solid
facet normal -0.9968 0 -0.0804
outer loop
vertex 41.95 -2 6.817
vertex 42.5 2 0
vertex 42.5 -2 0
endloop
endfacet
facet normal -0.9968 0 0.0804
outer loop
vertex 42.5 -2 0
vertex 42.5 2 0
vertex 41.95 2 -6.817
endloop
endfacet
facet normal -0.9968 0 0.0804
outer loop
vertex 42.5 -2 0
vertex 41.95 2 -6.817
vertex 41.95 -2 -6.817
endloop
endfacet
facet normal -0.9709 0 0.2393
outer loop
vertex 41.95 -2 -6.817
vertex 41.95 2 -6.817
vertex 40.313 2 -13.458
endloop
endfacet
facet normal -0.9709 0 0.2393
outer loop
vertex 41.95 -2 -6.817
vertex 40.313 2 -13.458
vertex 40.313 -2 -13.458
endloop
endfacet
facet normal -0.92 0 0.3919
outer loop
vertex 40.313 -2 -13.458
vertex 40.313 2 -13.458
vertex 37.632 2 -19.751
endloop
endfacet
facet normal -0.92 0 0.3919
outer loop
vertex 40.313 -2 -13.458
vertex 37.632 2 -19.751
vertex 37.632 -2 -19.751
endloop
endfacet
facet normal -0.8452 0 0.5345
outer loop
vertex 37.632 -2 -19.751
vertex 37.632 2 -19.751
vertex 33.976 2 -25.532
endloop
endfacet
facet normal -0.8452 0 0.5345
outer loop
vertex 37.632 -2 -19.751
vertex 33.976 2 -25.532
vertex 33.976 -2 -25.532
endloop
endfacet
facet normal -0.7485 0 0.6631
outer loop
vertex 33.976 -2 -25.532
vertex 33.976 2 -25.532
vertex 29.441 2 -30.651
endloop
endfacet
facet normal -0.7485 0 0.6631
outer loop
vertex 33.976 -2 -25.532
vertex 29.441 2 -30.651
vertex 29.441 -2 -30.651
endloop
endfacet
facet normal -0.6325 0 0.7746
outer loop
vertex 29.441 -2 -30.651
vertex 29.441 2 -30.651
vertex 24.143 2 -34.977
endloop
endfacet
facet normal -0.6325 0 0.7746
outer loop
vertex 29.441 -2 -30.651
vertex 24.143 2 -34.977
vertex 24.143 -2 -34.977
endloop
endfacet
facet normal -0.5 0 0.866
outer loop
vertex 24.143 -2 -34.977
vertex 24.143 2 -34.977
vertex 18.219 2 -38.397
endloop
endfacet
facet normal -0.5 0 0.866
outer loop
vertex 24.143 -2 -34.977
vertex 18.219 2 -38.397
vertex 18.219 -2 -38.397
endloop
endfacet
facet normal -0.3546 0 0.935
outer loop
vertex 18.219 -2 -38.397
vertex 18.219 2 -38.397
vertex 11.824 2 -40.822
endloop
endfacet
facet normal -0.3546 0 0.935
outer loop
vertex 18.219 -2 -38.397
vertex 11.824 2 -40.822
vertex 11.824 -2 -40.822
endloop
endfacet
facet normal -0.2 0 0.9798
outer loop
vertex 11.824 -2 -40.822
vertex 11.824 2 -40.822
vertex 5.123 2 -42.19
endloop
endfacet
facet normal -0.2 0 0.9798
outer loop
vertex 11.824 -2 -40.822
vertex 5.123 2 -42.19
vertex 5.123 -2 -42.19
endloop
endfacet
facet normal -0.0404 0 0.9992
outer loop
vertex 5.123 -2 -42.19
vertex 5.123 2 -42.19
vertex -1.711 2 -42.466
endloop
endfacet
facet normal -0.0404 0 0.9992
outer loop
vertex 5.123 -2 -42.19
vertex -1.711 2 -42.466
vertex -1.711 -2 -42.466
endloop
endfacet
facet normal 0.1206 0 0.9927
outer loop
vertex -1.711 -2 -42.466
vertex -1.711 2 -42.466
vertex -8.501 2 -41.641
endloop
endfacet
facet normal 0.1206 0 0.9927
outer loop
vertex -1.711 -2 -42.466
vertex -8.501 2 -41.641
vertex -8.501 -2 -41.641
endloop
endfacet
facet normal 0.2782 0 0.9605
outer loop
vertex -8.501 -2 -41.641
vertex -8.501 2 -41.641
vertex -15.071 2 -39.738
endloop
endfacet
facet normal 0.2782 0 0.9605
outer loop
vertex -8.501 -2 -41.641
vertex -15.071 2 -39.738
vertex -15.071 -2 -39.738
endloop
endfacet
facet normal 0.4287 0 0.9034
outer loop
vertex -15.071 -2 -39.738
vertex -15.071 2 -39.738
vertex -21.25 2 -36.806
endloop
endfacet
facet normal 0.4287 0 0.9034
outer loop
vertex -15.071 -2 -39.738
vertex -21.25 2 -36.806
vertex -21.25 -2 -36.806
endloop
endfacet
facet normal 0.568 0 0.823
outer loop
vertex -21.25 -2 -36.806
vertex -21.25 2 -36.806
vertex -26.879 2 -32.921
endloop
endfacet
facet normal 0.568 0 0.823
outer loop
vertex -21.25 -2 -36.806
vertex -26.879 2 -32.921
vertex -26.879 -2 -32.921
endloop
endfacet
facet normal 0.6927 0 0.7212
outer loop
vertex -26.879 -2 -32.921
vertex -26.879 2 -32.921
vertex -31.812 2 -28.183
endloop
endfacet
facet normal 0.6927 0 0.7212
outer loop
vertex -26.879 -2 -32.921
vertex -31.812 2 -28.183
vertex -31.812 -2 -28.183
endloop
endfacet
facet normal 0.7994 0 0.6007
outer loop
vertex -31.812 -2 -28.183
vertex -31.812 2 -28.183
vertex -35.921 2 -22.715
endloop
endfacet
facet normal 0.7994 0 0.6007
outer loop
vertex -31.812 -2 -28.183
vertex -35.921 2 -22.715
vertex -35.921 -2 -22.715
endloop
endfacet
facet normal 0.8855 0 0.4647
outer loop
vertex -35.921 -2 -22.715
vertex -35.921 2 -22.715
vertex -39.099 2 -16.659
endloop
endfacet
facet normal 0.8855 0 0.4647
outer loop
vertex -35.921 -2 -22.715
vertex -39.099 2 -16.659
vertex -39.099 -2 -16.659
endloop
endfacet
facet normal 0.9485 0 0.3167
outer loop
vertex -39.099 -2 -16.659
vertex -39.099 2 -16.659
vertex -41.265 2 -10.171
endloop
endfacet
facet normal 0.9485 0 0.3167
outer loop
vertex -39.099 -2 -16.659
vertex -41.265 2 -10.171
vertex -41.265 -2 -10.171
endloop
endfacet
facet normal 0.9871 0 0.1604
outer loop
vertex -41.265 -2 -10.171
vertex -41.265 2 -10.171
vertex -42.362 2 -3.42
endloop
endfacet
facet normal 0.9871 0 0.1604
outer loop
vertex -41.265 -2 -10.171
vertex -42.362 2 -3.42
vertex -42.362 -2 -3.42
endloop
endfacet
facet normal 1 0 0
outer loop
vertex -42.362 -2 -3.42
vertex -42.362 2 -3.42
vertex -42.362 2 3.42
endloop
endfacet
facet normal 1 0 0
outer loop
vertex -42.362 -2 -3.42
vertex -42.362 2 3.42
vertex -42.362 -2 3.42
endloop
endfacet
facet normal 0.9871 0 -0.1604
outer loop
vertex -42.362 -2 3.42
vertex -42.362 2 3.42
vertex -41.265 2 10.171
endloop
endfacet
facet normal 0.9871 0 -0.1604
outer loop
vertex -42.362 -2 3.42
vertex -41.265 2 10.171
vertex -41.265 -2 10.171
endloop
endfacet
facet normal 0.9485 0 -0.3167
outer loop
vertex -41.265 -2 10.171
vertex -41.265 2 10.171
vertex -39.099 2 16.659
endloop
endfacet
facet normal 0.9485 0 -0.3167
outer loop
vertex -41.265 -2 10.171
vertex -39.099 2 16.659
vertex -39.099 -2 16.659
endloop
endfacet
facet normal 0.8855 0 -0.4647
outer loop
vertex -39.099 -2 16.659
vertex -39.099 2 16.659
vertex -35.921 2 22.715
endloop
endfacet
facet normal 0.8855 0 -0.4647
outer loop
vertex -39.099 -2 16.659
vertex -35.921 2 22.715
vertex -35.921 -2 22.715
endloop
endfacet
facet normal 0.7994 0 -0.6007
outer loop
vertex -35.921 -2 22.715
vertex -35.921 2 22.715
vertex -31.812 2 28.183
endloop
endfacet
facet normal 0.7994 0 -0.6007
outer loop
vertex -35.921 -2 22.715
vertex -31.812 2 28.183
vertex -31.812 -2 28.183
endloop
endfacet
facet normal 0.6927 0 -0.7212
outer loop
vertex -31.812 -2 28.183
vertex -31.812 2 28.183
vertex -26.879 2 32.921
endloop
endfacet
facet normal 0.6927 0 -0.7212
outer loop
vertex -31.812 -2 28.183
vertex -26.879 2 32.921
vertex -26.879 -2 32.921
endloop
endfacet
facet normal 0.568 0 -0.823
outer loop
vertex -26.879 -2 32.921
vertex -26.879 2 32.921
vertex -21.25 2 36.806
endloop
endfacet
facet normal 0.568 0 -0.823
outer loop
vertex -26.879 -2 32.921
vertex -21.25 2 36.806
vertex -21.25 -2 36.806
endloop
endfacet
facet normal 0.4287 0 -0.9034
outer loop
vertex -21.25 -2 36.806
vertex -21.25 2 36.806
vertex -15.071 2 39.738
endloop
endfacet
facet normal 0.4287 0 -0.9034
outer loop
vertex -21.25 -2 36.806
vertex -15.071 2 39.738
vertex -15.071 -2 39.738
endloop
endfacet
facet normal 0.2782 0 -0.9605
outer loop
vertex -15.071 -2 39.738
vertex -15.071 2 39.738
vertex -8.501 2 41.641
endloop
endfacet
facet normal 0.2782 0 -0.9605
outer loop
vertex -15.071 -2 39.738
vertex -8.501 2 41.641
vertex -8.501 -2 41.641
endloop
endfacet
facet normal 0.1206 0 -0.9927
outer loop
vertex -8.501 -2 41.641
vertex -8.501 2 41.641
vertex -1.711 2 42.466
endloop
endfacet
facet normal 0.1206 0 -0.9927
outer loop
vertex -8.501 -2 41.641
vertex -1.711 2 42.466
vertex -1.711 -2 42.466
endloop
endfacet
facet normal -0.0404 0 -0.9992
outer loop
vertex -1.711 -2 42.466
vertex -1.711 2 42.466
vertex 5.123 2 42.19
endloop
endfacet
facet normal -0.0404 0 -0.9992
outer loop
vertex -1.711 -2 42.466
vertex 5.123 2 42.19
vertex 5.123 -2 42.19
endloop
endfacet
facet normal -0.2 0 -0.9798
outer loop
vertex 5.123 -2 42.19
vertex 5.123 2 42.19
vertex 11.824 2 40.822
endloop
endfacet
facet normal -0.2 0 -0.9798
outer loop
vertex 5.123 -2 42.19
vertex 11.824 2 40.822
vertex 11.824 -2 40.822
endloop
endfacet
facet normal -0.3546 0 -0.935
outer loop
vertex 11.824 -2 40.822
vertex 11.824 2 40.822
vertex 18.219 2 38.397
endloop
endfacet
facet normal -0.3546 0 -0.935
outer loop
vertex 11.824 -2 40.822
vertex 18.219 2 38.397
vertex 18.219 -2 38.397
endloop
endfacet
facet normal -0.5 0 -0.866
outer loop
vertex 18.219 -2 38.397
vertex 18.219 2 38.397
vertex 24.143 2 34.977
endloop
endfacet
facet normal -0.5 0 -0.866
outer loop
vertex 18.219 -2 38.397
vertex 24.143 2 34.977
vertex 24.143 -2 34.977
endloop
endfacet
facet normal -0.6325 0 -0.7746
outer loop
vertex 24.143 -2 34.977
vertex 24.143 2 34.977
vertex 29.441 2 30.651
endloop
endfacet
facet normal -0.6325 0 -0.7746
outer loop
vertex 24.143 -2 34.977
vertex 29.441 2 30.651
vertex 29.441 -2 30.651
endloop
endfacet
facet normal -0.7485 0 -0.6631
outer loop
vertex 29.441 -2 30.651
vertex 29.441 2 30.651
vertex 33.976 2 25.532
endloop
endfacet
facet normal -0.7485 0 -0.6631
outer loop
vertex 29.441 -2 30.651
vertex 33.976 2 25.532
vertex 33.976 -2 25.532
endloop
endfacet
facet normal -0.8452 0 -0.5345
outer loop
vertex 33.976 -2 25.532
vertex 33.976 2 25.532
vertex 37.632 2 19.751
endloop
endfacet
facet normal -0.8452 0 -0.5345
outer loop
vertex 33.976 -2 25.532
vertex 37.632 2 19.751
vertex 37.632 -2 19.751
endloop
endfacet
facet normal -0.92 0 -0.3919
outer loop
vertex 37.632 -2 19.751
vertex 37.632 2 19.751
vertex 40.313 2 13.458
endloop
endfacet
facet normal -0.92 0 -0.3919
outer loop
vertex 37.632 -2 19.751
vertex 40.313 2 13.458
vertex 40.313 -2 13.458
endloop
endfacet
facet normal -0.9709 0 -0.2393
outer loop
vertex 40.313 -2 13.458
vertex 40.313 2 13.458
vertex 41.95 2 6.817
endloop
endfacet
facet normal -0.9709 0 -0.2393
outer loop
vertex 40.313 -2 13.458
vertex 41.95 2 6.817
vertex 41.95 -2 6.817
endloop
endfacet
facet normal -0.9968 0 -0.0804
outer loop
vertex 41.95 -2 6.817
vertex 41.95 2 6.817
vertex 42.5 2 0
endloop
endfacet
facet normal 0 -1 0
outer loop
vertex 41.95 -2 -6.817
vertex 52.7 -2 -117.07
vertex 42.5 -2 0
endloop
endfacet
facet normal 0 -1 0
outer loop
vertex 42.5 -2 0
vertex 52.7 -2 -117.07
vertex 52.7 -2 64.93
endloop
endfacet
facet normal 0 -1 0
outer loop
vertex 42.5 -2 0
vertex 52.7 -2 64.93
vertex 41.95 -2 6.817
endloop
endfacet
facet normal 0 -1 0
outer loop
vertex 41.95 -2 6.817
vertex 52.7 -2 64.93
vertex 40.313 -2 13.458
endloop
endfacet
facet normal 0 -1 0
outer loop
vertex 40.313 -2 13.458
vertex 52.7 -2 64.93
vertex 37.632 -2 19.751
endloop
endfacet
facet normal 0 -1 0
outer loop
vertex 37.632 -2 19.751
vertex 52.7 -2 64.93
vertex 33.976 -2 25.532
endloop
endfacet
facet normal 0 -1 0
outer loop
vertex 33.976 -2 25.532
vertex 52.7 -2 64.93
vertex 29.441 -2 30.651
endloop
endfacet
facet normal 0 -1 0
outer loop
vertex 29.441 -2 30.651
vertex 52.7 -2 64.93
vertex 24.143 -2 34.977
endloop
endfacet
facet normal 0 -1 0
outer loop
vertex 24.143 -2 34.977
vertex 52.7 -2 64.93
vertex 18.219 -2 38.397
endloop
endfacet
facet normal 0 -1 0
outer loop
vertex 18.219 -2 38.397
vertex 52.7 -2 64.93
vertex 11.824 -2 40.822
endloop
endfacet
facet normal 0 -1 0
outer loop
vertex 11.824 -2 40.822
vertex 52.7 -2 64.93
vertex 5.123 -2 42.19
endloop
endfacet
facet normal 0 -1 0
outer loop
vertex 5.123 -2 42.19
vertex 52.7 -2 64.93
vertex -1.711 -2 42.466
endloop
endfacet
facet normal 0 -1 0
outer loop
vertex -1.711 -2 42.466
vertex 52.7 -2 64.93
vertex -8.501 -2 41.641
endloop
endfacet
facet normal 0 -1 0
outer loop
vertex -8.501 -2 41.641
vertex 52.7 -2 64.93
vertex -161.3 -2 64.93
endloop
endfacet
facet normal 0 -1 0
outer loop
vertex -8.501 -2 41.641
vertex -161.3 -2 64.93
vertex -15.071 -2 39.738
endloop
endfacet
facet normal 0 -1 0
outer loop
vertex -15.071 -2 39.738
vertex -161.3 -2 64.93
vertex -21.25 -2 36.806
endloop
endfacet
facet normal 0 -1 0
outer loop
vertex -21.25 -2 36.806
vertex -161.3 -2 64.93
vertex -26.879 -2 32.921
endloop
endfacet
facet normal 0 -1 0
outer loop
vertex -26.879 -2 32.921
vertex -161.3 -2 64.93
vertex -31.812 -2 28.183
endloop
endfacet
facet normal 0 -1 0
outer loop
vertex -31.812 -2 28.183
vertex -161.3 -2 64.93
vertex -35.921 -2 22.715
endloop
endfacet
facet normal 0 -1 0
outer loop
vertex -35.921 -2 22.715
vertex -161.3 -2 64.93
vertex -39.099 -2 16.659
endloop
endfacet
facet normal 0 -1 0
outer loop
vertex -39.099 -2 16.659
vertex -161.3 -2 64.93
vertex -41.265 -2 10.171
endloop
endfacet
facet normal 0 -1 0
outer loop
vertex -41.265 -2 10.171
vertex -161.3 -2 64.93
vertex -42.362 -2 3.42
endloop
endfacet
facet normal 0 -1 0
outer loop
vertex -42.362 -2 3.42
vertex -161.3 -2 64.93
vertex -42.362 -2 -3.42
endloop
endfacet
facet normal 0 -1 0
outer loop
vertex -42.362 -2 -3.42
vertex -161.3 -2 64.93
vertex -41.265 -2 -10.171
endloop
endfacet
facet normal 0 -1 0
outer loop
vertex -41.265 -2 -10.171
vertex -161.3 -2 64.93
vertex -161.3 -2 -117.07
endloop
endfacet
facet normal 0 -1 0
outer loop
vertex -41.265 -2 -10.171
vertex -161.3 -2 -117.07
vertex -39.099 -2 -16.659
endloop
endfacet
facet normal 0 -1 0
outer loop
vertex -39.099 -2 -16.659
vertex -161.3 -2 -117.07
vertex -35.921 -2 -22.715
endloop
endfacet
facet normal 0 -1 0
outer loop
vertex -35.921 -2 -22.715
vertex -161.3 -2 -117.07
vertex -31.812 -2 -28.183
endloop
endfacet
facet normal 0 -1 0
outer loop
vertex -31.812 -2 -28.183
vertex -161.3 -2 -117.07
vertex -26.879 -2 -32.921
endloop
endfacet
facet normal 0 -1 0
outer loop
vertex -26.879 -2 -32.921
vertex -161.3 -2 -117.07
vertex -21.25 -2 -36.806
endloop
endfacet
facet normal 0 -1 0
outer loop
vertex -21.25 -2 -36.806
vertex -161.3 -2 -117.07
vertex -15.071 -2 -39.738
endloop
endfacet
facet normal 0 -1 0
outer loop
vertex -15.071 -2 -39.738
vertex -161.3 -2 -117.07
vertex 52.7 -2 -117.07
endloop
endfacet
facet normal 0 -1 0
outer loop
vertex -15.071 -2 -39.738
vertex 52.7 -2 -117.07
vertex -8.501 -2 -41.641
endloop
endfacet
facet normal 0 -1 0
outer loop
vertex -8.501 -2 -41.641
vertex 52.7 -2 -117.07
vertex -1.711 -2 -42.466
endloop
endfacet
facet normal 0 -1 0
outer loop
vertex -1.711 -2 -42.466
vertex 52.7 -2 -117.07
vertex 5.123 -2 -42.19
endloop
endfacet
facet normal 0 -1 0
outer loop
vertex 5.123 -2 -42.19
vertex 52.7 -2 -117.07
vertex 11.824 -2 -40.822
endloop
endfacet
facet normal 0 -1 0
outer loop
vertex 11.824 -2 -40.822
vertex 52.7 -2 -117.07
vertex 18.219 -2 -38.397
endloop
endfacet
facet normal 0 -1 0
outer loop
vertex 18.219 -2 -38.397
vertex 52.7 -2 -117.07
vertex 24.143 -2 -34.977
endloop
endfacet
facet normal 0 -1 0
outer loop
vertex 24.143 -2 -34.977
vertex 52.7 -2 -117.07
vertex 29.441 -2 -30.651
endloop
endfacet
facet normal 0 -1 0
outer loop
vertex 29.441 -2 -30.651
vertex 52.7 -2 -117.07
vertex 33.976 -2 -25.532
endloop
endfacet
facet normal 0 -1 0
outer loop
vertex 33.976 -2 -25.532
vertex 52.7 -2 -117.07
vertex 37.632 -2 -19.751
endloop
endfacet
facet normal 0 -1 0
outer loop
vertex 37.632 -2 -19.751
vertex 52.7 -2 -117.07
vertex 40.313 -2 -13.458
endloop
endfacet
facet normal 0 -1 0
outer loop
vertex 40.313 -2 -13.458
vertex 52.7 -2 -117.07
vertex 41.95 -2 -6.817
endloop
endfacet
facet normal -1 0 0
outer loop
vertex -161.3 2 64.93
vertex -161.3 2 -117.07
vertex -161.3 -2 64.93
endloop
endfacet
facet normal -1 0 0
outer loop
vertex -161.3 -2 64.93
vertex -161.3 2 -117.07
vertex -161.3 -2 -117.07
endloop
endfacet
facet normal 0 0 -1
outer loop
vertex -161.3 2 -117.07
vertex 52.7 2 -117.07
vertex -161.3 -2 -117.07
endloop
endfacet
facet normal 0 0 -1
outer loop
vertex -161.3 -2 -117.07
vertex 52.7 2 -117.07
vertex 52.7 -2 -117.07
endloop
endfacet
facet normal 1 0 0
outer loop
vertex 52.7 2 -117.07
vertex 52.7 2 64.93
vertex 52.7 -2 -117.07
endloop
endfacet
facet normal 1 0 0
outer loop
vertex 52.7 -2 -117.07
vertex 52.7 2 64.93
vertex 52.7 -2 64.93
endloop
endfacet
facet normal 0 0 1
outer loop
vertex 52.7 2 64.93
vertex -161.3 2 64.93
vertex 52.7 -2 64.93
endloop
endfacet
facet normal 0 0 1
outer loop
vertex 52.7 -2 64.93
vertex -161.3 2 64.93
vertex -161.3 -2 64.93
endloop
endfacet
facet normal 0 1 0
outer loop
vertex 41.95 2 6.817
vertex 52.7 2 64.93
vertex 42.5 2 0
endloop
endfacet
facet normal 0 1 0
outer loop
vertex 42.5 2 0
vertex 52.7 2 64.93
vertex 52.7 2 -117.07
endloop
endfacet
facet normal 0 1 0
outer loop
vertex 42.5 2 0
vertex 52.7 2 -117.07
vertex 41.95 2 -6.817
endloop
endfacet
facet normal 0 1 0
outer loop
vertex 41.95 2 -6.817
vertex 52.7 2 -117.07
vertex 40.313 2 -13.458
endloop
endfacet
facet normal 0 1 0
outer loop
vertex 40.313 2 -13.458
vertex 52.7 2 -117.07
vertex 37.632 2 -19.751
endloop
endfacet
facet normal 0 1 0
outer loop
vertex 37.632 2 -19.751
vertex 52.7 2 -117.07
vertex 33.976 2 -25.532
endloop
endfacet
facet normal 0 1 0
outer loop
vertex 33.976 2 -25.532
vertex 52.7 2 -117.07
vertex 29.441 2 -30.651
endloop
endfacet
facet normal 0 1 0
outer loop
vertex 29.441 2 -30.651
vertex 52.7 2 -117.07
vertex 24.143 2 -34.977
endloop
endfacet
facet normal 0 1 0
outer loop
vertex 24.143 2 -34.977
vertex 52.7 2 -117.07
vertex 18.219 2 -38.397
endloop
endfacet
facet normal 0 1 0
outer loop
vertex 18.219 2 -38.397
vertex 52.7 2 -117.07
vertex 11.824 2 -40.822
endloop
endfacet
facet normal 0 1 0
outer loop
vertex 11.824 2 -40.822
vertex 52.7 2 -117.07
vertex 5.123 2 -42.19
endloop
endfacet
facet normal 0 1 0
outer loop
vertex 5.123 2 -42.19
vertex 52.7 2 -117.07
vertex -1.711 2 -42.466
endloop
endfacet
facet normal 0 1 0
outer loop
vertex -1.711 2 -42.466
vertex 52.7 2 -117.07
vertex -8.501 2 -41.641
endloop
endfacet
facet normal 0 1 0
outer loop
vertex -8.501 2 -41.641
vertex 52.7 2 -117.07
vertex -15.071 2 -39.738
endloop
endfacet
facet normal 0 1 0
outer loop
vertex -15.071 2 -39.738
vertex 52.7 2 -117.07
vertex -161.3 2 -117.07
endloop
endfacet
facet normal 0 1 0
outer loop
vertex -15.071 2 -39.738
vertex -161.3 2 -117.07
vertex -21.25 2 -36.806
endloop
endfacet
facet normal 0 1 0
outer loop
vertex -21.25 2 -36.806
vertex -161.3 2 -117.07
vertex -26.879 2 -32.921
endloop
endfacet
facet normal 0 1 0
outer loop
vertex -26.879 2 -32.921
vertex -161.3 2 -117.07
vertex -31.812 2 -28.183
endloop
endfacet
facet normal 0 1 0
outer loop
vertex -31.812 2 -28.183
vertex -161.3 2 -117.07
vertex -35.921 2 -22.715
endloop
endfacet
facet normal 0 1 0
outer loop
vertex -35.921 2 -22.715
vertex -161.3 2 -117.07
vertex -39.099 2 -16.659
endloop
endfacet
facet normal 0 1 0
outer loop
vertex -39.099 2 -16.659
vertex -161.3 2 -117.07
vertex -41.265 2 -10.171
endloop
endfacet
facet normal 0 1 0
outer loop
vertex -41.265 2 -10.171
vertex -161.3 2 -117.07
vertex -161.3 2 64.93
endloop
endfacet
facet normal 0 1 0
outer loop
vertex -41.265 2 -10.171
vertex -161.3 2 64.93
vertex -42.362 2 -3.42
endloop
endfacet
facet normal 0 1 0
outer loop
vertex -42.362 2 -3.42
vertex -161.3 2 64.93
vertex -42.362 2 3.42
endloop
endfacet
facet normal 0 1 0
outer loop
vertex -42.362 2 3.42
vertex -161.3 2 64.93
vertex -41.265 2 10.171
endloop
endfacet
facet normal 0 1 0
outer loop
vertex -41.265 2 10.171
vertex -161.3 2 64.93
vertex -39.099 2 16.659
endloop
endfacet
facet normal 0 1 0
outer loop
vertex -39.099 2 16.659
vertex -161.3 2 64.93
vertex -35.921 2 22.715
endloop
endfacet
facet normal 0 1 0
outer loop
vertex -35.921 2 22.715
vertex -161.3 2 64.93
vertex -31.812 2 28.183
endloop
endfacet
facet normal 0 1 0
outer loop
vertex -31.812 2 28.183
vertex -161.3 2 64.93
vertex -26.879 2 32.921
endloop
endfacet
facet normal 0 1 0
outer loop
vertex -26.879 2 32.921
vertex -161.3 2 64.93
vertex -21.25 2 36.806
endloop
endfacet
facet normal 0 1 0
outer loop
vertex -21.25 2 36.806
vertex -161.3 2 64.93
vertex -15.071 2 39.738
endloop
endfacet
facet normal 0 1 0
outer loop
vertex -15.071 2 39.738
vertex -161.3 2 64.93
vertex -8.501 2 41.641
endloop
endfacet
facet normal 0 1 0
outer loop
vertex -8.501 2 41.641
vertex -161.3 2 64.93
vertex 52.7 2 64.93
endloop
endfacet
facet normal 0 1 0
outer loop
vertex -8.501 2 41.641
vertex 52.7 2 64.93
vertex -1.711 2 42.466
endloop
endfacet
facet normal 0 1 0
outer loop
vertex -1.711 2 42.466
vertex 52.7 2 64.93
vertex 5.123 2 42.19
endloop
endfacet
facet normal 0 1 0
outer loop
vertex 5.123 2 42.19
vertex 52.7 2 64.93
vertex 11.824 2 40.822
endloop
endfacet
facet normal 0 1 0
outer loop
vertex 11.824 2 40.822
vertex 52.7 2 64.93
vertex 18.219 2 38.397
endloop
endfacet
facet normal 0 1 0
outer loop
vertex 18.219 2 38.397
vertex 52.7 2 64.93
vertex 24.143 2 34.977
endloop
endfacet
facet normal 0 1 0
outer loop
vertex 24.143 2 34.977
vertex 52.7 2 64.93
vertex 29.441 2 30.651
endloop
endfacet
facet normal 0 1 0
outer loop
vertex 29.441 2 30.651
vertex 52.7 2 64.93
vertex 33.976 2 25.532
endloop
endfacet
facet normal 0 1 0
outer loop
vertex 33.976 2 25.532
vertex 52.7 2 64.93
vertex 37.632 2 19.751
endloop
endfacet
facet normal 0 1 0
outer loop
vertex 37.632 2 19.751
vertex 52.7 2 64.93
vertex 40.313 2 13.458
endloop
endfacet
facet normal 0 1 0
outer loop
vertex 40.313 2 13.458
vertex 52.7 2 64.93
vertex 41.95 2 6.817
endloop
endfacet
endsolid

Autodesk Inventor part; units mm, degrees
ref_plane "YZ Plane" through (0, 0, 0) normal (1, 0, 0) x (0, 1, 0)
ref_plane "XY Plane" through (0, 0, 0) normal (0, 0, 1) x (1, 0, 0)
ref_plane "Work Plane1" through (0, 35, 0) normal (0, 1, 0) x (-1, 0, 0)
ref_plane "Work Plane2" through (0, -35, 0) normal (0, 1, 0) x (-1, 0, 0)
sketch "Sketch3" plane through (0, 0, 0) normal (0, 1, 0) x (-1, 0, 0)
  line L0 (161.3, -117.07) -> (-52.7, -117.07)
  line L1 (-52.7, -117.07) -> (-52.7, 64.93)
  line L2 (-52.7, 64.93) -> (161.3, 64.93)
  line L3 (161.3, 64.93) -> (161.3, -117.07)
  circle A0 centre (0, 0) radius 37.5
  dimension "d8" = 182
  dimension "d9" = 214
  dimension "d10" = 52.7
  dimension "d11" = 64.93
  dimension "d14" = 75
extrude "Extrusion1" add sketch "Sketch3" along normal mid plane 4
sketch "Sketch4" plane through (0, 35, 0) normal (0, 1, 0) x (-1, 0, 0)
  circle A0 centre (0, 0) radius 37.5
  circle A1 centre (0, 0) radius 42.5
  dimension "d15" = 75
  dimension "d16" = 85
extrude "Extrusion2" add sketch "Sketch4" against normal up to surface (70 mm away)
sketch "Sketch5" plane through (0, -35, 0) normal (0, 1, 0) x (-1, 0, 0)
  circle A0 centre (0, 0) radius 37.5
  circle A1 centre (0, 0) radius 20
  dimension "d19" = 75
  dimension "d20" = 40
extrude "Extrusion3" add sketch "Sketch5" along normal blind 3
sketch "Sketch6" plane through (0, 0, 0) normal (0, 0, 1) x (1, 0, 0)
  line L0 (-37.5, -32) -> (37.5, -32) projected
  line L1 (-42.5, -35) -> (42.5, -35) projected
  arc A0 (-24.5305, -32) -> (-20, -35) centre (-2.9998, -4.406) ccw
  line L2 (-24.5305, -32) -> (-20, -32)
  line L3 (-20, -35) -> (-20, -32)
  line L4 (-20, -32) -> (-20, -35) projected
  line L5 (-24.5305, -32) -> (-20, -32)
  line L6 (0, -42.1057) -> (0, 7.0176) projected
  point P0 (0, 0)
  dimension "d23" = 35
  dimension "d24" = 4.5305
revolve "Revolution1" cut sketch "Sketch6" angle 360 about axis through (0, -10, 0) along (0, 1, 0) contours L0 L3 A0
sketch "Sketch7" plane through (0, 2, 0) normal (0, 1, 0) x (1, 0, 0)
  circle A0 centre (0, 0) radius 42.5
  circle A1 centre (0, 0) radius 42.5 projected
  dimension "d26" = 85
extrude "Extrusion4" cut sketch "Sketch7" along normal mid plane 80
properties part number "tapa_lanzador_pelota"
